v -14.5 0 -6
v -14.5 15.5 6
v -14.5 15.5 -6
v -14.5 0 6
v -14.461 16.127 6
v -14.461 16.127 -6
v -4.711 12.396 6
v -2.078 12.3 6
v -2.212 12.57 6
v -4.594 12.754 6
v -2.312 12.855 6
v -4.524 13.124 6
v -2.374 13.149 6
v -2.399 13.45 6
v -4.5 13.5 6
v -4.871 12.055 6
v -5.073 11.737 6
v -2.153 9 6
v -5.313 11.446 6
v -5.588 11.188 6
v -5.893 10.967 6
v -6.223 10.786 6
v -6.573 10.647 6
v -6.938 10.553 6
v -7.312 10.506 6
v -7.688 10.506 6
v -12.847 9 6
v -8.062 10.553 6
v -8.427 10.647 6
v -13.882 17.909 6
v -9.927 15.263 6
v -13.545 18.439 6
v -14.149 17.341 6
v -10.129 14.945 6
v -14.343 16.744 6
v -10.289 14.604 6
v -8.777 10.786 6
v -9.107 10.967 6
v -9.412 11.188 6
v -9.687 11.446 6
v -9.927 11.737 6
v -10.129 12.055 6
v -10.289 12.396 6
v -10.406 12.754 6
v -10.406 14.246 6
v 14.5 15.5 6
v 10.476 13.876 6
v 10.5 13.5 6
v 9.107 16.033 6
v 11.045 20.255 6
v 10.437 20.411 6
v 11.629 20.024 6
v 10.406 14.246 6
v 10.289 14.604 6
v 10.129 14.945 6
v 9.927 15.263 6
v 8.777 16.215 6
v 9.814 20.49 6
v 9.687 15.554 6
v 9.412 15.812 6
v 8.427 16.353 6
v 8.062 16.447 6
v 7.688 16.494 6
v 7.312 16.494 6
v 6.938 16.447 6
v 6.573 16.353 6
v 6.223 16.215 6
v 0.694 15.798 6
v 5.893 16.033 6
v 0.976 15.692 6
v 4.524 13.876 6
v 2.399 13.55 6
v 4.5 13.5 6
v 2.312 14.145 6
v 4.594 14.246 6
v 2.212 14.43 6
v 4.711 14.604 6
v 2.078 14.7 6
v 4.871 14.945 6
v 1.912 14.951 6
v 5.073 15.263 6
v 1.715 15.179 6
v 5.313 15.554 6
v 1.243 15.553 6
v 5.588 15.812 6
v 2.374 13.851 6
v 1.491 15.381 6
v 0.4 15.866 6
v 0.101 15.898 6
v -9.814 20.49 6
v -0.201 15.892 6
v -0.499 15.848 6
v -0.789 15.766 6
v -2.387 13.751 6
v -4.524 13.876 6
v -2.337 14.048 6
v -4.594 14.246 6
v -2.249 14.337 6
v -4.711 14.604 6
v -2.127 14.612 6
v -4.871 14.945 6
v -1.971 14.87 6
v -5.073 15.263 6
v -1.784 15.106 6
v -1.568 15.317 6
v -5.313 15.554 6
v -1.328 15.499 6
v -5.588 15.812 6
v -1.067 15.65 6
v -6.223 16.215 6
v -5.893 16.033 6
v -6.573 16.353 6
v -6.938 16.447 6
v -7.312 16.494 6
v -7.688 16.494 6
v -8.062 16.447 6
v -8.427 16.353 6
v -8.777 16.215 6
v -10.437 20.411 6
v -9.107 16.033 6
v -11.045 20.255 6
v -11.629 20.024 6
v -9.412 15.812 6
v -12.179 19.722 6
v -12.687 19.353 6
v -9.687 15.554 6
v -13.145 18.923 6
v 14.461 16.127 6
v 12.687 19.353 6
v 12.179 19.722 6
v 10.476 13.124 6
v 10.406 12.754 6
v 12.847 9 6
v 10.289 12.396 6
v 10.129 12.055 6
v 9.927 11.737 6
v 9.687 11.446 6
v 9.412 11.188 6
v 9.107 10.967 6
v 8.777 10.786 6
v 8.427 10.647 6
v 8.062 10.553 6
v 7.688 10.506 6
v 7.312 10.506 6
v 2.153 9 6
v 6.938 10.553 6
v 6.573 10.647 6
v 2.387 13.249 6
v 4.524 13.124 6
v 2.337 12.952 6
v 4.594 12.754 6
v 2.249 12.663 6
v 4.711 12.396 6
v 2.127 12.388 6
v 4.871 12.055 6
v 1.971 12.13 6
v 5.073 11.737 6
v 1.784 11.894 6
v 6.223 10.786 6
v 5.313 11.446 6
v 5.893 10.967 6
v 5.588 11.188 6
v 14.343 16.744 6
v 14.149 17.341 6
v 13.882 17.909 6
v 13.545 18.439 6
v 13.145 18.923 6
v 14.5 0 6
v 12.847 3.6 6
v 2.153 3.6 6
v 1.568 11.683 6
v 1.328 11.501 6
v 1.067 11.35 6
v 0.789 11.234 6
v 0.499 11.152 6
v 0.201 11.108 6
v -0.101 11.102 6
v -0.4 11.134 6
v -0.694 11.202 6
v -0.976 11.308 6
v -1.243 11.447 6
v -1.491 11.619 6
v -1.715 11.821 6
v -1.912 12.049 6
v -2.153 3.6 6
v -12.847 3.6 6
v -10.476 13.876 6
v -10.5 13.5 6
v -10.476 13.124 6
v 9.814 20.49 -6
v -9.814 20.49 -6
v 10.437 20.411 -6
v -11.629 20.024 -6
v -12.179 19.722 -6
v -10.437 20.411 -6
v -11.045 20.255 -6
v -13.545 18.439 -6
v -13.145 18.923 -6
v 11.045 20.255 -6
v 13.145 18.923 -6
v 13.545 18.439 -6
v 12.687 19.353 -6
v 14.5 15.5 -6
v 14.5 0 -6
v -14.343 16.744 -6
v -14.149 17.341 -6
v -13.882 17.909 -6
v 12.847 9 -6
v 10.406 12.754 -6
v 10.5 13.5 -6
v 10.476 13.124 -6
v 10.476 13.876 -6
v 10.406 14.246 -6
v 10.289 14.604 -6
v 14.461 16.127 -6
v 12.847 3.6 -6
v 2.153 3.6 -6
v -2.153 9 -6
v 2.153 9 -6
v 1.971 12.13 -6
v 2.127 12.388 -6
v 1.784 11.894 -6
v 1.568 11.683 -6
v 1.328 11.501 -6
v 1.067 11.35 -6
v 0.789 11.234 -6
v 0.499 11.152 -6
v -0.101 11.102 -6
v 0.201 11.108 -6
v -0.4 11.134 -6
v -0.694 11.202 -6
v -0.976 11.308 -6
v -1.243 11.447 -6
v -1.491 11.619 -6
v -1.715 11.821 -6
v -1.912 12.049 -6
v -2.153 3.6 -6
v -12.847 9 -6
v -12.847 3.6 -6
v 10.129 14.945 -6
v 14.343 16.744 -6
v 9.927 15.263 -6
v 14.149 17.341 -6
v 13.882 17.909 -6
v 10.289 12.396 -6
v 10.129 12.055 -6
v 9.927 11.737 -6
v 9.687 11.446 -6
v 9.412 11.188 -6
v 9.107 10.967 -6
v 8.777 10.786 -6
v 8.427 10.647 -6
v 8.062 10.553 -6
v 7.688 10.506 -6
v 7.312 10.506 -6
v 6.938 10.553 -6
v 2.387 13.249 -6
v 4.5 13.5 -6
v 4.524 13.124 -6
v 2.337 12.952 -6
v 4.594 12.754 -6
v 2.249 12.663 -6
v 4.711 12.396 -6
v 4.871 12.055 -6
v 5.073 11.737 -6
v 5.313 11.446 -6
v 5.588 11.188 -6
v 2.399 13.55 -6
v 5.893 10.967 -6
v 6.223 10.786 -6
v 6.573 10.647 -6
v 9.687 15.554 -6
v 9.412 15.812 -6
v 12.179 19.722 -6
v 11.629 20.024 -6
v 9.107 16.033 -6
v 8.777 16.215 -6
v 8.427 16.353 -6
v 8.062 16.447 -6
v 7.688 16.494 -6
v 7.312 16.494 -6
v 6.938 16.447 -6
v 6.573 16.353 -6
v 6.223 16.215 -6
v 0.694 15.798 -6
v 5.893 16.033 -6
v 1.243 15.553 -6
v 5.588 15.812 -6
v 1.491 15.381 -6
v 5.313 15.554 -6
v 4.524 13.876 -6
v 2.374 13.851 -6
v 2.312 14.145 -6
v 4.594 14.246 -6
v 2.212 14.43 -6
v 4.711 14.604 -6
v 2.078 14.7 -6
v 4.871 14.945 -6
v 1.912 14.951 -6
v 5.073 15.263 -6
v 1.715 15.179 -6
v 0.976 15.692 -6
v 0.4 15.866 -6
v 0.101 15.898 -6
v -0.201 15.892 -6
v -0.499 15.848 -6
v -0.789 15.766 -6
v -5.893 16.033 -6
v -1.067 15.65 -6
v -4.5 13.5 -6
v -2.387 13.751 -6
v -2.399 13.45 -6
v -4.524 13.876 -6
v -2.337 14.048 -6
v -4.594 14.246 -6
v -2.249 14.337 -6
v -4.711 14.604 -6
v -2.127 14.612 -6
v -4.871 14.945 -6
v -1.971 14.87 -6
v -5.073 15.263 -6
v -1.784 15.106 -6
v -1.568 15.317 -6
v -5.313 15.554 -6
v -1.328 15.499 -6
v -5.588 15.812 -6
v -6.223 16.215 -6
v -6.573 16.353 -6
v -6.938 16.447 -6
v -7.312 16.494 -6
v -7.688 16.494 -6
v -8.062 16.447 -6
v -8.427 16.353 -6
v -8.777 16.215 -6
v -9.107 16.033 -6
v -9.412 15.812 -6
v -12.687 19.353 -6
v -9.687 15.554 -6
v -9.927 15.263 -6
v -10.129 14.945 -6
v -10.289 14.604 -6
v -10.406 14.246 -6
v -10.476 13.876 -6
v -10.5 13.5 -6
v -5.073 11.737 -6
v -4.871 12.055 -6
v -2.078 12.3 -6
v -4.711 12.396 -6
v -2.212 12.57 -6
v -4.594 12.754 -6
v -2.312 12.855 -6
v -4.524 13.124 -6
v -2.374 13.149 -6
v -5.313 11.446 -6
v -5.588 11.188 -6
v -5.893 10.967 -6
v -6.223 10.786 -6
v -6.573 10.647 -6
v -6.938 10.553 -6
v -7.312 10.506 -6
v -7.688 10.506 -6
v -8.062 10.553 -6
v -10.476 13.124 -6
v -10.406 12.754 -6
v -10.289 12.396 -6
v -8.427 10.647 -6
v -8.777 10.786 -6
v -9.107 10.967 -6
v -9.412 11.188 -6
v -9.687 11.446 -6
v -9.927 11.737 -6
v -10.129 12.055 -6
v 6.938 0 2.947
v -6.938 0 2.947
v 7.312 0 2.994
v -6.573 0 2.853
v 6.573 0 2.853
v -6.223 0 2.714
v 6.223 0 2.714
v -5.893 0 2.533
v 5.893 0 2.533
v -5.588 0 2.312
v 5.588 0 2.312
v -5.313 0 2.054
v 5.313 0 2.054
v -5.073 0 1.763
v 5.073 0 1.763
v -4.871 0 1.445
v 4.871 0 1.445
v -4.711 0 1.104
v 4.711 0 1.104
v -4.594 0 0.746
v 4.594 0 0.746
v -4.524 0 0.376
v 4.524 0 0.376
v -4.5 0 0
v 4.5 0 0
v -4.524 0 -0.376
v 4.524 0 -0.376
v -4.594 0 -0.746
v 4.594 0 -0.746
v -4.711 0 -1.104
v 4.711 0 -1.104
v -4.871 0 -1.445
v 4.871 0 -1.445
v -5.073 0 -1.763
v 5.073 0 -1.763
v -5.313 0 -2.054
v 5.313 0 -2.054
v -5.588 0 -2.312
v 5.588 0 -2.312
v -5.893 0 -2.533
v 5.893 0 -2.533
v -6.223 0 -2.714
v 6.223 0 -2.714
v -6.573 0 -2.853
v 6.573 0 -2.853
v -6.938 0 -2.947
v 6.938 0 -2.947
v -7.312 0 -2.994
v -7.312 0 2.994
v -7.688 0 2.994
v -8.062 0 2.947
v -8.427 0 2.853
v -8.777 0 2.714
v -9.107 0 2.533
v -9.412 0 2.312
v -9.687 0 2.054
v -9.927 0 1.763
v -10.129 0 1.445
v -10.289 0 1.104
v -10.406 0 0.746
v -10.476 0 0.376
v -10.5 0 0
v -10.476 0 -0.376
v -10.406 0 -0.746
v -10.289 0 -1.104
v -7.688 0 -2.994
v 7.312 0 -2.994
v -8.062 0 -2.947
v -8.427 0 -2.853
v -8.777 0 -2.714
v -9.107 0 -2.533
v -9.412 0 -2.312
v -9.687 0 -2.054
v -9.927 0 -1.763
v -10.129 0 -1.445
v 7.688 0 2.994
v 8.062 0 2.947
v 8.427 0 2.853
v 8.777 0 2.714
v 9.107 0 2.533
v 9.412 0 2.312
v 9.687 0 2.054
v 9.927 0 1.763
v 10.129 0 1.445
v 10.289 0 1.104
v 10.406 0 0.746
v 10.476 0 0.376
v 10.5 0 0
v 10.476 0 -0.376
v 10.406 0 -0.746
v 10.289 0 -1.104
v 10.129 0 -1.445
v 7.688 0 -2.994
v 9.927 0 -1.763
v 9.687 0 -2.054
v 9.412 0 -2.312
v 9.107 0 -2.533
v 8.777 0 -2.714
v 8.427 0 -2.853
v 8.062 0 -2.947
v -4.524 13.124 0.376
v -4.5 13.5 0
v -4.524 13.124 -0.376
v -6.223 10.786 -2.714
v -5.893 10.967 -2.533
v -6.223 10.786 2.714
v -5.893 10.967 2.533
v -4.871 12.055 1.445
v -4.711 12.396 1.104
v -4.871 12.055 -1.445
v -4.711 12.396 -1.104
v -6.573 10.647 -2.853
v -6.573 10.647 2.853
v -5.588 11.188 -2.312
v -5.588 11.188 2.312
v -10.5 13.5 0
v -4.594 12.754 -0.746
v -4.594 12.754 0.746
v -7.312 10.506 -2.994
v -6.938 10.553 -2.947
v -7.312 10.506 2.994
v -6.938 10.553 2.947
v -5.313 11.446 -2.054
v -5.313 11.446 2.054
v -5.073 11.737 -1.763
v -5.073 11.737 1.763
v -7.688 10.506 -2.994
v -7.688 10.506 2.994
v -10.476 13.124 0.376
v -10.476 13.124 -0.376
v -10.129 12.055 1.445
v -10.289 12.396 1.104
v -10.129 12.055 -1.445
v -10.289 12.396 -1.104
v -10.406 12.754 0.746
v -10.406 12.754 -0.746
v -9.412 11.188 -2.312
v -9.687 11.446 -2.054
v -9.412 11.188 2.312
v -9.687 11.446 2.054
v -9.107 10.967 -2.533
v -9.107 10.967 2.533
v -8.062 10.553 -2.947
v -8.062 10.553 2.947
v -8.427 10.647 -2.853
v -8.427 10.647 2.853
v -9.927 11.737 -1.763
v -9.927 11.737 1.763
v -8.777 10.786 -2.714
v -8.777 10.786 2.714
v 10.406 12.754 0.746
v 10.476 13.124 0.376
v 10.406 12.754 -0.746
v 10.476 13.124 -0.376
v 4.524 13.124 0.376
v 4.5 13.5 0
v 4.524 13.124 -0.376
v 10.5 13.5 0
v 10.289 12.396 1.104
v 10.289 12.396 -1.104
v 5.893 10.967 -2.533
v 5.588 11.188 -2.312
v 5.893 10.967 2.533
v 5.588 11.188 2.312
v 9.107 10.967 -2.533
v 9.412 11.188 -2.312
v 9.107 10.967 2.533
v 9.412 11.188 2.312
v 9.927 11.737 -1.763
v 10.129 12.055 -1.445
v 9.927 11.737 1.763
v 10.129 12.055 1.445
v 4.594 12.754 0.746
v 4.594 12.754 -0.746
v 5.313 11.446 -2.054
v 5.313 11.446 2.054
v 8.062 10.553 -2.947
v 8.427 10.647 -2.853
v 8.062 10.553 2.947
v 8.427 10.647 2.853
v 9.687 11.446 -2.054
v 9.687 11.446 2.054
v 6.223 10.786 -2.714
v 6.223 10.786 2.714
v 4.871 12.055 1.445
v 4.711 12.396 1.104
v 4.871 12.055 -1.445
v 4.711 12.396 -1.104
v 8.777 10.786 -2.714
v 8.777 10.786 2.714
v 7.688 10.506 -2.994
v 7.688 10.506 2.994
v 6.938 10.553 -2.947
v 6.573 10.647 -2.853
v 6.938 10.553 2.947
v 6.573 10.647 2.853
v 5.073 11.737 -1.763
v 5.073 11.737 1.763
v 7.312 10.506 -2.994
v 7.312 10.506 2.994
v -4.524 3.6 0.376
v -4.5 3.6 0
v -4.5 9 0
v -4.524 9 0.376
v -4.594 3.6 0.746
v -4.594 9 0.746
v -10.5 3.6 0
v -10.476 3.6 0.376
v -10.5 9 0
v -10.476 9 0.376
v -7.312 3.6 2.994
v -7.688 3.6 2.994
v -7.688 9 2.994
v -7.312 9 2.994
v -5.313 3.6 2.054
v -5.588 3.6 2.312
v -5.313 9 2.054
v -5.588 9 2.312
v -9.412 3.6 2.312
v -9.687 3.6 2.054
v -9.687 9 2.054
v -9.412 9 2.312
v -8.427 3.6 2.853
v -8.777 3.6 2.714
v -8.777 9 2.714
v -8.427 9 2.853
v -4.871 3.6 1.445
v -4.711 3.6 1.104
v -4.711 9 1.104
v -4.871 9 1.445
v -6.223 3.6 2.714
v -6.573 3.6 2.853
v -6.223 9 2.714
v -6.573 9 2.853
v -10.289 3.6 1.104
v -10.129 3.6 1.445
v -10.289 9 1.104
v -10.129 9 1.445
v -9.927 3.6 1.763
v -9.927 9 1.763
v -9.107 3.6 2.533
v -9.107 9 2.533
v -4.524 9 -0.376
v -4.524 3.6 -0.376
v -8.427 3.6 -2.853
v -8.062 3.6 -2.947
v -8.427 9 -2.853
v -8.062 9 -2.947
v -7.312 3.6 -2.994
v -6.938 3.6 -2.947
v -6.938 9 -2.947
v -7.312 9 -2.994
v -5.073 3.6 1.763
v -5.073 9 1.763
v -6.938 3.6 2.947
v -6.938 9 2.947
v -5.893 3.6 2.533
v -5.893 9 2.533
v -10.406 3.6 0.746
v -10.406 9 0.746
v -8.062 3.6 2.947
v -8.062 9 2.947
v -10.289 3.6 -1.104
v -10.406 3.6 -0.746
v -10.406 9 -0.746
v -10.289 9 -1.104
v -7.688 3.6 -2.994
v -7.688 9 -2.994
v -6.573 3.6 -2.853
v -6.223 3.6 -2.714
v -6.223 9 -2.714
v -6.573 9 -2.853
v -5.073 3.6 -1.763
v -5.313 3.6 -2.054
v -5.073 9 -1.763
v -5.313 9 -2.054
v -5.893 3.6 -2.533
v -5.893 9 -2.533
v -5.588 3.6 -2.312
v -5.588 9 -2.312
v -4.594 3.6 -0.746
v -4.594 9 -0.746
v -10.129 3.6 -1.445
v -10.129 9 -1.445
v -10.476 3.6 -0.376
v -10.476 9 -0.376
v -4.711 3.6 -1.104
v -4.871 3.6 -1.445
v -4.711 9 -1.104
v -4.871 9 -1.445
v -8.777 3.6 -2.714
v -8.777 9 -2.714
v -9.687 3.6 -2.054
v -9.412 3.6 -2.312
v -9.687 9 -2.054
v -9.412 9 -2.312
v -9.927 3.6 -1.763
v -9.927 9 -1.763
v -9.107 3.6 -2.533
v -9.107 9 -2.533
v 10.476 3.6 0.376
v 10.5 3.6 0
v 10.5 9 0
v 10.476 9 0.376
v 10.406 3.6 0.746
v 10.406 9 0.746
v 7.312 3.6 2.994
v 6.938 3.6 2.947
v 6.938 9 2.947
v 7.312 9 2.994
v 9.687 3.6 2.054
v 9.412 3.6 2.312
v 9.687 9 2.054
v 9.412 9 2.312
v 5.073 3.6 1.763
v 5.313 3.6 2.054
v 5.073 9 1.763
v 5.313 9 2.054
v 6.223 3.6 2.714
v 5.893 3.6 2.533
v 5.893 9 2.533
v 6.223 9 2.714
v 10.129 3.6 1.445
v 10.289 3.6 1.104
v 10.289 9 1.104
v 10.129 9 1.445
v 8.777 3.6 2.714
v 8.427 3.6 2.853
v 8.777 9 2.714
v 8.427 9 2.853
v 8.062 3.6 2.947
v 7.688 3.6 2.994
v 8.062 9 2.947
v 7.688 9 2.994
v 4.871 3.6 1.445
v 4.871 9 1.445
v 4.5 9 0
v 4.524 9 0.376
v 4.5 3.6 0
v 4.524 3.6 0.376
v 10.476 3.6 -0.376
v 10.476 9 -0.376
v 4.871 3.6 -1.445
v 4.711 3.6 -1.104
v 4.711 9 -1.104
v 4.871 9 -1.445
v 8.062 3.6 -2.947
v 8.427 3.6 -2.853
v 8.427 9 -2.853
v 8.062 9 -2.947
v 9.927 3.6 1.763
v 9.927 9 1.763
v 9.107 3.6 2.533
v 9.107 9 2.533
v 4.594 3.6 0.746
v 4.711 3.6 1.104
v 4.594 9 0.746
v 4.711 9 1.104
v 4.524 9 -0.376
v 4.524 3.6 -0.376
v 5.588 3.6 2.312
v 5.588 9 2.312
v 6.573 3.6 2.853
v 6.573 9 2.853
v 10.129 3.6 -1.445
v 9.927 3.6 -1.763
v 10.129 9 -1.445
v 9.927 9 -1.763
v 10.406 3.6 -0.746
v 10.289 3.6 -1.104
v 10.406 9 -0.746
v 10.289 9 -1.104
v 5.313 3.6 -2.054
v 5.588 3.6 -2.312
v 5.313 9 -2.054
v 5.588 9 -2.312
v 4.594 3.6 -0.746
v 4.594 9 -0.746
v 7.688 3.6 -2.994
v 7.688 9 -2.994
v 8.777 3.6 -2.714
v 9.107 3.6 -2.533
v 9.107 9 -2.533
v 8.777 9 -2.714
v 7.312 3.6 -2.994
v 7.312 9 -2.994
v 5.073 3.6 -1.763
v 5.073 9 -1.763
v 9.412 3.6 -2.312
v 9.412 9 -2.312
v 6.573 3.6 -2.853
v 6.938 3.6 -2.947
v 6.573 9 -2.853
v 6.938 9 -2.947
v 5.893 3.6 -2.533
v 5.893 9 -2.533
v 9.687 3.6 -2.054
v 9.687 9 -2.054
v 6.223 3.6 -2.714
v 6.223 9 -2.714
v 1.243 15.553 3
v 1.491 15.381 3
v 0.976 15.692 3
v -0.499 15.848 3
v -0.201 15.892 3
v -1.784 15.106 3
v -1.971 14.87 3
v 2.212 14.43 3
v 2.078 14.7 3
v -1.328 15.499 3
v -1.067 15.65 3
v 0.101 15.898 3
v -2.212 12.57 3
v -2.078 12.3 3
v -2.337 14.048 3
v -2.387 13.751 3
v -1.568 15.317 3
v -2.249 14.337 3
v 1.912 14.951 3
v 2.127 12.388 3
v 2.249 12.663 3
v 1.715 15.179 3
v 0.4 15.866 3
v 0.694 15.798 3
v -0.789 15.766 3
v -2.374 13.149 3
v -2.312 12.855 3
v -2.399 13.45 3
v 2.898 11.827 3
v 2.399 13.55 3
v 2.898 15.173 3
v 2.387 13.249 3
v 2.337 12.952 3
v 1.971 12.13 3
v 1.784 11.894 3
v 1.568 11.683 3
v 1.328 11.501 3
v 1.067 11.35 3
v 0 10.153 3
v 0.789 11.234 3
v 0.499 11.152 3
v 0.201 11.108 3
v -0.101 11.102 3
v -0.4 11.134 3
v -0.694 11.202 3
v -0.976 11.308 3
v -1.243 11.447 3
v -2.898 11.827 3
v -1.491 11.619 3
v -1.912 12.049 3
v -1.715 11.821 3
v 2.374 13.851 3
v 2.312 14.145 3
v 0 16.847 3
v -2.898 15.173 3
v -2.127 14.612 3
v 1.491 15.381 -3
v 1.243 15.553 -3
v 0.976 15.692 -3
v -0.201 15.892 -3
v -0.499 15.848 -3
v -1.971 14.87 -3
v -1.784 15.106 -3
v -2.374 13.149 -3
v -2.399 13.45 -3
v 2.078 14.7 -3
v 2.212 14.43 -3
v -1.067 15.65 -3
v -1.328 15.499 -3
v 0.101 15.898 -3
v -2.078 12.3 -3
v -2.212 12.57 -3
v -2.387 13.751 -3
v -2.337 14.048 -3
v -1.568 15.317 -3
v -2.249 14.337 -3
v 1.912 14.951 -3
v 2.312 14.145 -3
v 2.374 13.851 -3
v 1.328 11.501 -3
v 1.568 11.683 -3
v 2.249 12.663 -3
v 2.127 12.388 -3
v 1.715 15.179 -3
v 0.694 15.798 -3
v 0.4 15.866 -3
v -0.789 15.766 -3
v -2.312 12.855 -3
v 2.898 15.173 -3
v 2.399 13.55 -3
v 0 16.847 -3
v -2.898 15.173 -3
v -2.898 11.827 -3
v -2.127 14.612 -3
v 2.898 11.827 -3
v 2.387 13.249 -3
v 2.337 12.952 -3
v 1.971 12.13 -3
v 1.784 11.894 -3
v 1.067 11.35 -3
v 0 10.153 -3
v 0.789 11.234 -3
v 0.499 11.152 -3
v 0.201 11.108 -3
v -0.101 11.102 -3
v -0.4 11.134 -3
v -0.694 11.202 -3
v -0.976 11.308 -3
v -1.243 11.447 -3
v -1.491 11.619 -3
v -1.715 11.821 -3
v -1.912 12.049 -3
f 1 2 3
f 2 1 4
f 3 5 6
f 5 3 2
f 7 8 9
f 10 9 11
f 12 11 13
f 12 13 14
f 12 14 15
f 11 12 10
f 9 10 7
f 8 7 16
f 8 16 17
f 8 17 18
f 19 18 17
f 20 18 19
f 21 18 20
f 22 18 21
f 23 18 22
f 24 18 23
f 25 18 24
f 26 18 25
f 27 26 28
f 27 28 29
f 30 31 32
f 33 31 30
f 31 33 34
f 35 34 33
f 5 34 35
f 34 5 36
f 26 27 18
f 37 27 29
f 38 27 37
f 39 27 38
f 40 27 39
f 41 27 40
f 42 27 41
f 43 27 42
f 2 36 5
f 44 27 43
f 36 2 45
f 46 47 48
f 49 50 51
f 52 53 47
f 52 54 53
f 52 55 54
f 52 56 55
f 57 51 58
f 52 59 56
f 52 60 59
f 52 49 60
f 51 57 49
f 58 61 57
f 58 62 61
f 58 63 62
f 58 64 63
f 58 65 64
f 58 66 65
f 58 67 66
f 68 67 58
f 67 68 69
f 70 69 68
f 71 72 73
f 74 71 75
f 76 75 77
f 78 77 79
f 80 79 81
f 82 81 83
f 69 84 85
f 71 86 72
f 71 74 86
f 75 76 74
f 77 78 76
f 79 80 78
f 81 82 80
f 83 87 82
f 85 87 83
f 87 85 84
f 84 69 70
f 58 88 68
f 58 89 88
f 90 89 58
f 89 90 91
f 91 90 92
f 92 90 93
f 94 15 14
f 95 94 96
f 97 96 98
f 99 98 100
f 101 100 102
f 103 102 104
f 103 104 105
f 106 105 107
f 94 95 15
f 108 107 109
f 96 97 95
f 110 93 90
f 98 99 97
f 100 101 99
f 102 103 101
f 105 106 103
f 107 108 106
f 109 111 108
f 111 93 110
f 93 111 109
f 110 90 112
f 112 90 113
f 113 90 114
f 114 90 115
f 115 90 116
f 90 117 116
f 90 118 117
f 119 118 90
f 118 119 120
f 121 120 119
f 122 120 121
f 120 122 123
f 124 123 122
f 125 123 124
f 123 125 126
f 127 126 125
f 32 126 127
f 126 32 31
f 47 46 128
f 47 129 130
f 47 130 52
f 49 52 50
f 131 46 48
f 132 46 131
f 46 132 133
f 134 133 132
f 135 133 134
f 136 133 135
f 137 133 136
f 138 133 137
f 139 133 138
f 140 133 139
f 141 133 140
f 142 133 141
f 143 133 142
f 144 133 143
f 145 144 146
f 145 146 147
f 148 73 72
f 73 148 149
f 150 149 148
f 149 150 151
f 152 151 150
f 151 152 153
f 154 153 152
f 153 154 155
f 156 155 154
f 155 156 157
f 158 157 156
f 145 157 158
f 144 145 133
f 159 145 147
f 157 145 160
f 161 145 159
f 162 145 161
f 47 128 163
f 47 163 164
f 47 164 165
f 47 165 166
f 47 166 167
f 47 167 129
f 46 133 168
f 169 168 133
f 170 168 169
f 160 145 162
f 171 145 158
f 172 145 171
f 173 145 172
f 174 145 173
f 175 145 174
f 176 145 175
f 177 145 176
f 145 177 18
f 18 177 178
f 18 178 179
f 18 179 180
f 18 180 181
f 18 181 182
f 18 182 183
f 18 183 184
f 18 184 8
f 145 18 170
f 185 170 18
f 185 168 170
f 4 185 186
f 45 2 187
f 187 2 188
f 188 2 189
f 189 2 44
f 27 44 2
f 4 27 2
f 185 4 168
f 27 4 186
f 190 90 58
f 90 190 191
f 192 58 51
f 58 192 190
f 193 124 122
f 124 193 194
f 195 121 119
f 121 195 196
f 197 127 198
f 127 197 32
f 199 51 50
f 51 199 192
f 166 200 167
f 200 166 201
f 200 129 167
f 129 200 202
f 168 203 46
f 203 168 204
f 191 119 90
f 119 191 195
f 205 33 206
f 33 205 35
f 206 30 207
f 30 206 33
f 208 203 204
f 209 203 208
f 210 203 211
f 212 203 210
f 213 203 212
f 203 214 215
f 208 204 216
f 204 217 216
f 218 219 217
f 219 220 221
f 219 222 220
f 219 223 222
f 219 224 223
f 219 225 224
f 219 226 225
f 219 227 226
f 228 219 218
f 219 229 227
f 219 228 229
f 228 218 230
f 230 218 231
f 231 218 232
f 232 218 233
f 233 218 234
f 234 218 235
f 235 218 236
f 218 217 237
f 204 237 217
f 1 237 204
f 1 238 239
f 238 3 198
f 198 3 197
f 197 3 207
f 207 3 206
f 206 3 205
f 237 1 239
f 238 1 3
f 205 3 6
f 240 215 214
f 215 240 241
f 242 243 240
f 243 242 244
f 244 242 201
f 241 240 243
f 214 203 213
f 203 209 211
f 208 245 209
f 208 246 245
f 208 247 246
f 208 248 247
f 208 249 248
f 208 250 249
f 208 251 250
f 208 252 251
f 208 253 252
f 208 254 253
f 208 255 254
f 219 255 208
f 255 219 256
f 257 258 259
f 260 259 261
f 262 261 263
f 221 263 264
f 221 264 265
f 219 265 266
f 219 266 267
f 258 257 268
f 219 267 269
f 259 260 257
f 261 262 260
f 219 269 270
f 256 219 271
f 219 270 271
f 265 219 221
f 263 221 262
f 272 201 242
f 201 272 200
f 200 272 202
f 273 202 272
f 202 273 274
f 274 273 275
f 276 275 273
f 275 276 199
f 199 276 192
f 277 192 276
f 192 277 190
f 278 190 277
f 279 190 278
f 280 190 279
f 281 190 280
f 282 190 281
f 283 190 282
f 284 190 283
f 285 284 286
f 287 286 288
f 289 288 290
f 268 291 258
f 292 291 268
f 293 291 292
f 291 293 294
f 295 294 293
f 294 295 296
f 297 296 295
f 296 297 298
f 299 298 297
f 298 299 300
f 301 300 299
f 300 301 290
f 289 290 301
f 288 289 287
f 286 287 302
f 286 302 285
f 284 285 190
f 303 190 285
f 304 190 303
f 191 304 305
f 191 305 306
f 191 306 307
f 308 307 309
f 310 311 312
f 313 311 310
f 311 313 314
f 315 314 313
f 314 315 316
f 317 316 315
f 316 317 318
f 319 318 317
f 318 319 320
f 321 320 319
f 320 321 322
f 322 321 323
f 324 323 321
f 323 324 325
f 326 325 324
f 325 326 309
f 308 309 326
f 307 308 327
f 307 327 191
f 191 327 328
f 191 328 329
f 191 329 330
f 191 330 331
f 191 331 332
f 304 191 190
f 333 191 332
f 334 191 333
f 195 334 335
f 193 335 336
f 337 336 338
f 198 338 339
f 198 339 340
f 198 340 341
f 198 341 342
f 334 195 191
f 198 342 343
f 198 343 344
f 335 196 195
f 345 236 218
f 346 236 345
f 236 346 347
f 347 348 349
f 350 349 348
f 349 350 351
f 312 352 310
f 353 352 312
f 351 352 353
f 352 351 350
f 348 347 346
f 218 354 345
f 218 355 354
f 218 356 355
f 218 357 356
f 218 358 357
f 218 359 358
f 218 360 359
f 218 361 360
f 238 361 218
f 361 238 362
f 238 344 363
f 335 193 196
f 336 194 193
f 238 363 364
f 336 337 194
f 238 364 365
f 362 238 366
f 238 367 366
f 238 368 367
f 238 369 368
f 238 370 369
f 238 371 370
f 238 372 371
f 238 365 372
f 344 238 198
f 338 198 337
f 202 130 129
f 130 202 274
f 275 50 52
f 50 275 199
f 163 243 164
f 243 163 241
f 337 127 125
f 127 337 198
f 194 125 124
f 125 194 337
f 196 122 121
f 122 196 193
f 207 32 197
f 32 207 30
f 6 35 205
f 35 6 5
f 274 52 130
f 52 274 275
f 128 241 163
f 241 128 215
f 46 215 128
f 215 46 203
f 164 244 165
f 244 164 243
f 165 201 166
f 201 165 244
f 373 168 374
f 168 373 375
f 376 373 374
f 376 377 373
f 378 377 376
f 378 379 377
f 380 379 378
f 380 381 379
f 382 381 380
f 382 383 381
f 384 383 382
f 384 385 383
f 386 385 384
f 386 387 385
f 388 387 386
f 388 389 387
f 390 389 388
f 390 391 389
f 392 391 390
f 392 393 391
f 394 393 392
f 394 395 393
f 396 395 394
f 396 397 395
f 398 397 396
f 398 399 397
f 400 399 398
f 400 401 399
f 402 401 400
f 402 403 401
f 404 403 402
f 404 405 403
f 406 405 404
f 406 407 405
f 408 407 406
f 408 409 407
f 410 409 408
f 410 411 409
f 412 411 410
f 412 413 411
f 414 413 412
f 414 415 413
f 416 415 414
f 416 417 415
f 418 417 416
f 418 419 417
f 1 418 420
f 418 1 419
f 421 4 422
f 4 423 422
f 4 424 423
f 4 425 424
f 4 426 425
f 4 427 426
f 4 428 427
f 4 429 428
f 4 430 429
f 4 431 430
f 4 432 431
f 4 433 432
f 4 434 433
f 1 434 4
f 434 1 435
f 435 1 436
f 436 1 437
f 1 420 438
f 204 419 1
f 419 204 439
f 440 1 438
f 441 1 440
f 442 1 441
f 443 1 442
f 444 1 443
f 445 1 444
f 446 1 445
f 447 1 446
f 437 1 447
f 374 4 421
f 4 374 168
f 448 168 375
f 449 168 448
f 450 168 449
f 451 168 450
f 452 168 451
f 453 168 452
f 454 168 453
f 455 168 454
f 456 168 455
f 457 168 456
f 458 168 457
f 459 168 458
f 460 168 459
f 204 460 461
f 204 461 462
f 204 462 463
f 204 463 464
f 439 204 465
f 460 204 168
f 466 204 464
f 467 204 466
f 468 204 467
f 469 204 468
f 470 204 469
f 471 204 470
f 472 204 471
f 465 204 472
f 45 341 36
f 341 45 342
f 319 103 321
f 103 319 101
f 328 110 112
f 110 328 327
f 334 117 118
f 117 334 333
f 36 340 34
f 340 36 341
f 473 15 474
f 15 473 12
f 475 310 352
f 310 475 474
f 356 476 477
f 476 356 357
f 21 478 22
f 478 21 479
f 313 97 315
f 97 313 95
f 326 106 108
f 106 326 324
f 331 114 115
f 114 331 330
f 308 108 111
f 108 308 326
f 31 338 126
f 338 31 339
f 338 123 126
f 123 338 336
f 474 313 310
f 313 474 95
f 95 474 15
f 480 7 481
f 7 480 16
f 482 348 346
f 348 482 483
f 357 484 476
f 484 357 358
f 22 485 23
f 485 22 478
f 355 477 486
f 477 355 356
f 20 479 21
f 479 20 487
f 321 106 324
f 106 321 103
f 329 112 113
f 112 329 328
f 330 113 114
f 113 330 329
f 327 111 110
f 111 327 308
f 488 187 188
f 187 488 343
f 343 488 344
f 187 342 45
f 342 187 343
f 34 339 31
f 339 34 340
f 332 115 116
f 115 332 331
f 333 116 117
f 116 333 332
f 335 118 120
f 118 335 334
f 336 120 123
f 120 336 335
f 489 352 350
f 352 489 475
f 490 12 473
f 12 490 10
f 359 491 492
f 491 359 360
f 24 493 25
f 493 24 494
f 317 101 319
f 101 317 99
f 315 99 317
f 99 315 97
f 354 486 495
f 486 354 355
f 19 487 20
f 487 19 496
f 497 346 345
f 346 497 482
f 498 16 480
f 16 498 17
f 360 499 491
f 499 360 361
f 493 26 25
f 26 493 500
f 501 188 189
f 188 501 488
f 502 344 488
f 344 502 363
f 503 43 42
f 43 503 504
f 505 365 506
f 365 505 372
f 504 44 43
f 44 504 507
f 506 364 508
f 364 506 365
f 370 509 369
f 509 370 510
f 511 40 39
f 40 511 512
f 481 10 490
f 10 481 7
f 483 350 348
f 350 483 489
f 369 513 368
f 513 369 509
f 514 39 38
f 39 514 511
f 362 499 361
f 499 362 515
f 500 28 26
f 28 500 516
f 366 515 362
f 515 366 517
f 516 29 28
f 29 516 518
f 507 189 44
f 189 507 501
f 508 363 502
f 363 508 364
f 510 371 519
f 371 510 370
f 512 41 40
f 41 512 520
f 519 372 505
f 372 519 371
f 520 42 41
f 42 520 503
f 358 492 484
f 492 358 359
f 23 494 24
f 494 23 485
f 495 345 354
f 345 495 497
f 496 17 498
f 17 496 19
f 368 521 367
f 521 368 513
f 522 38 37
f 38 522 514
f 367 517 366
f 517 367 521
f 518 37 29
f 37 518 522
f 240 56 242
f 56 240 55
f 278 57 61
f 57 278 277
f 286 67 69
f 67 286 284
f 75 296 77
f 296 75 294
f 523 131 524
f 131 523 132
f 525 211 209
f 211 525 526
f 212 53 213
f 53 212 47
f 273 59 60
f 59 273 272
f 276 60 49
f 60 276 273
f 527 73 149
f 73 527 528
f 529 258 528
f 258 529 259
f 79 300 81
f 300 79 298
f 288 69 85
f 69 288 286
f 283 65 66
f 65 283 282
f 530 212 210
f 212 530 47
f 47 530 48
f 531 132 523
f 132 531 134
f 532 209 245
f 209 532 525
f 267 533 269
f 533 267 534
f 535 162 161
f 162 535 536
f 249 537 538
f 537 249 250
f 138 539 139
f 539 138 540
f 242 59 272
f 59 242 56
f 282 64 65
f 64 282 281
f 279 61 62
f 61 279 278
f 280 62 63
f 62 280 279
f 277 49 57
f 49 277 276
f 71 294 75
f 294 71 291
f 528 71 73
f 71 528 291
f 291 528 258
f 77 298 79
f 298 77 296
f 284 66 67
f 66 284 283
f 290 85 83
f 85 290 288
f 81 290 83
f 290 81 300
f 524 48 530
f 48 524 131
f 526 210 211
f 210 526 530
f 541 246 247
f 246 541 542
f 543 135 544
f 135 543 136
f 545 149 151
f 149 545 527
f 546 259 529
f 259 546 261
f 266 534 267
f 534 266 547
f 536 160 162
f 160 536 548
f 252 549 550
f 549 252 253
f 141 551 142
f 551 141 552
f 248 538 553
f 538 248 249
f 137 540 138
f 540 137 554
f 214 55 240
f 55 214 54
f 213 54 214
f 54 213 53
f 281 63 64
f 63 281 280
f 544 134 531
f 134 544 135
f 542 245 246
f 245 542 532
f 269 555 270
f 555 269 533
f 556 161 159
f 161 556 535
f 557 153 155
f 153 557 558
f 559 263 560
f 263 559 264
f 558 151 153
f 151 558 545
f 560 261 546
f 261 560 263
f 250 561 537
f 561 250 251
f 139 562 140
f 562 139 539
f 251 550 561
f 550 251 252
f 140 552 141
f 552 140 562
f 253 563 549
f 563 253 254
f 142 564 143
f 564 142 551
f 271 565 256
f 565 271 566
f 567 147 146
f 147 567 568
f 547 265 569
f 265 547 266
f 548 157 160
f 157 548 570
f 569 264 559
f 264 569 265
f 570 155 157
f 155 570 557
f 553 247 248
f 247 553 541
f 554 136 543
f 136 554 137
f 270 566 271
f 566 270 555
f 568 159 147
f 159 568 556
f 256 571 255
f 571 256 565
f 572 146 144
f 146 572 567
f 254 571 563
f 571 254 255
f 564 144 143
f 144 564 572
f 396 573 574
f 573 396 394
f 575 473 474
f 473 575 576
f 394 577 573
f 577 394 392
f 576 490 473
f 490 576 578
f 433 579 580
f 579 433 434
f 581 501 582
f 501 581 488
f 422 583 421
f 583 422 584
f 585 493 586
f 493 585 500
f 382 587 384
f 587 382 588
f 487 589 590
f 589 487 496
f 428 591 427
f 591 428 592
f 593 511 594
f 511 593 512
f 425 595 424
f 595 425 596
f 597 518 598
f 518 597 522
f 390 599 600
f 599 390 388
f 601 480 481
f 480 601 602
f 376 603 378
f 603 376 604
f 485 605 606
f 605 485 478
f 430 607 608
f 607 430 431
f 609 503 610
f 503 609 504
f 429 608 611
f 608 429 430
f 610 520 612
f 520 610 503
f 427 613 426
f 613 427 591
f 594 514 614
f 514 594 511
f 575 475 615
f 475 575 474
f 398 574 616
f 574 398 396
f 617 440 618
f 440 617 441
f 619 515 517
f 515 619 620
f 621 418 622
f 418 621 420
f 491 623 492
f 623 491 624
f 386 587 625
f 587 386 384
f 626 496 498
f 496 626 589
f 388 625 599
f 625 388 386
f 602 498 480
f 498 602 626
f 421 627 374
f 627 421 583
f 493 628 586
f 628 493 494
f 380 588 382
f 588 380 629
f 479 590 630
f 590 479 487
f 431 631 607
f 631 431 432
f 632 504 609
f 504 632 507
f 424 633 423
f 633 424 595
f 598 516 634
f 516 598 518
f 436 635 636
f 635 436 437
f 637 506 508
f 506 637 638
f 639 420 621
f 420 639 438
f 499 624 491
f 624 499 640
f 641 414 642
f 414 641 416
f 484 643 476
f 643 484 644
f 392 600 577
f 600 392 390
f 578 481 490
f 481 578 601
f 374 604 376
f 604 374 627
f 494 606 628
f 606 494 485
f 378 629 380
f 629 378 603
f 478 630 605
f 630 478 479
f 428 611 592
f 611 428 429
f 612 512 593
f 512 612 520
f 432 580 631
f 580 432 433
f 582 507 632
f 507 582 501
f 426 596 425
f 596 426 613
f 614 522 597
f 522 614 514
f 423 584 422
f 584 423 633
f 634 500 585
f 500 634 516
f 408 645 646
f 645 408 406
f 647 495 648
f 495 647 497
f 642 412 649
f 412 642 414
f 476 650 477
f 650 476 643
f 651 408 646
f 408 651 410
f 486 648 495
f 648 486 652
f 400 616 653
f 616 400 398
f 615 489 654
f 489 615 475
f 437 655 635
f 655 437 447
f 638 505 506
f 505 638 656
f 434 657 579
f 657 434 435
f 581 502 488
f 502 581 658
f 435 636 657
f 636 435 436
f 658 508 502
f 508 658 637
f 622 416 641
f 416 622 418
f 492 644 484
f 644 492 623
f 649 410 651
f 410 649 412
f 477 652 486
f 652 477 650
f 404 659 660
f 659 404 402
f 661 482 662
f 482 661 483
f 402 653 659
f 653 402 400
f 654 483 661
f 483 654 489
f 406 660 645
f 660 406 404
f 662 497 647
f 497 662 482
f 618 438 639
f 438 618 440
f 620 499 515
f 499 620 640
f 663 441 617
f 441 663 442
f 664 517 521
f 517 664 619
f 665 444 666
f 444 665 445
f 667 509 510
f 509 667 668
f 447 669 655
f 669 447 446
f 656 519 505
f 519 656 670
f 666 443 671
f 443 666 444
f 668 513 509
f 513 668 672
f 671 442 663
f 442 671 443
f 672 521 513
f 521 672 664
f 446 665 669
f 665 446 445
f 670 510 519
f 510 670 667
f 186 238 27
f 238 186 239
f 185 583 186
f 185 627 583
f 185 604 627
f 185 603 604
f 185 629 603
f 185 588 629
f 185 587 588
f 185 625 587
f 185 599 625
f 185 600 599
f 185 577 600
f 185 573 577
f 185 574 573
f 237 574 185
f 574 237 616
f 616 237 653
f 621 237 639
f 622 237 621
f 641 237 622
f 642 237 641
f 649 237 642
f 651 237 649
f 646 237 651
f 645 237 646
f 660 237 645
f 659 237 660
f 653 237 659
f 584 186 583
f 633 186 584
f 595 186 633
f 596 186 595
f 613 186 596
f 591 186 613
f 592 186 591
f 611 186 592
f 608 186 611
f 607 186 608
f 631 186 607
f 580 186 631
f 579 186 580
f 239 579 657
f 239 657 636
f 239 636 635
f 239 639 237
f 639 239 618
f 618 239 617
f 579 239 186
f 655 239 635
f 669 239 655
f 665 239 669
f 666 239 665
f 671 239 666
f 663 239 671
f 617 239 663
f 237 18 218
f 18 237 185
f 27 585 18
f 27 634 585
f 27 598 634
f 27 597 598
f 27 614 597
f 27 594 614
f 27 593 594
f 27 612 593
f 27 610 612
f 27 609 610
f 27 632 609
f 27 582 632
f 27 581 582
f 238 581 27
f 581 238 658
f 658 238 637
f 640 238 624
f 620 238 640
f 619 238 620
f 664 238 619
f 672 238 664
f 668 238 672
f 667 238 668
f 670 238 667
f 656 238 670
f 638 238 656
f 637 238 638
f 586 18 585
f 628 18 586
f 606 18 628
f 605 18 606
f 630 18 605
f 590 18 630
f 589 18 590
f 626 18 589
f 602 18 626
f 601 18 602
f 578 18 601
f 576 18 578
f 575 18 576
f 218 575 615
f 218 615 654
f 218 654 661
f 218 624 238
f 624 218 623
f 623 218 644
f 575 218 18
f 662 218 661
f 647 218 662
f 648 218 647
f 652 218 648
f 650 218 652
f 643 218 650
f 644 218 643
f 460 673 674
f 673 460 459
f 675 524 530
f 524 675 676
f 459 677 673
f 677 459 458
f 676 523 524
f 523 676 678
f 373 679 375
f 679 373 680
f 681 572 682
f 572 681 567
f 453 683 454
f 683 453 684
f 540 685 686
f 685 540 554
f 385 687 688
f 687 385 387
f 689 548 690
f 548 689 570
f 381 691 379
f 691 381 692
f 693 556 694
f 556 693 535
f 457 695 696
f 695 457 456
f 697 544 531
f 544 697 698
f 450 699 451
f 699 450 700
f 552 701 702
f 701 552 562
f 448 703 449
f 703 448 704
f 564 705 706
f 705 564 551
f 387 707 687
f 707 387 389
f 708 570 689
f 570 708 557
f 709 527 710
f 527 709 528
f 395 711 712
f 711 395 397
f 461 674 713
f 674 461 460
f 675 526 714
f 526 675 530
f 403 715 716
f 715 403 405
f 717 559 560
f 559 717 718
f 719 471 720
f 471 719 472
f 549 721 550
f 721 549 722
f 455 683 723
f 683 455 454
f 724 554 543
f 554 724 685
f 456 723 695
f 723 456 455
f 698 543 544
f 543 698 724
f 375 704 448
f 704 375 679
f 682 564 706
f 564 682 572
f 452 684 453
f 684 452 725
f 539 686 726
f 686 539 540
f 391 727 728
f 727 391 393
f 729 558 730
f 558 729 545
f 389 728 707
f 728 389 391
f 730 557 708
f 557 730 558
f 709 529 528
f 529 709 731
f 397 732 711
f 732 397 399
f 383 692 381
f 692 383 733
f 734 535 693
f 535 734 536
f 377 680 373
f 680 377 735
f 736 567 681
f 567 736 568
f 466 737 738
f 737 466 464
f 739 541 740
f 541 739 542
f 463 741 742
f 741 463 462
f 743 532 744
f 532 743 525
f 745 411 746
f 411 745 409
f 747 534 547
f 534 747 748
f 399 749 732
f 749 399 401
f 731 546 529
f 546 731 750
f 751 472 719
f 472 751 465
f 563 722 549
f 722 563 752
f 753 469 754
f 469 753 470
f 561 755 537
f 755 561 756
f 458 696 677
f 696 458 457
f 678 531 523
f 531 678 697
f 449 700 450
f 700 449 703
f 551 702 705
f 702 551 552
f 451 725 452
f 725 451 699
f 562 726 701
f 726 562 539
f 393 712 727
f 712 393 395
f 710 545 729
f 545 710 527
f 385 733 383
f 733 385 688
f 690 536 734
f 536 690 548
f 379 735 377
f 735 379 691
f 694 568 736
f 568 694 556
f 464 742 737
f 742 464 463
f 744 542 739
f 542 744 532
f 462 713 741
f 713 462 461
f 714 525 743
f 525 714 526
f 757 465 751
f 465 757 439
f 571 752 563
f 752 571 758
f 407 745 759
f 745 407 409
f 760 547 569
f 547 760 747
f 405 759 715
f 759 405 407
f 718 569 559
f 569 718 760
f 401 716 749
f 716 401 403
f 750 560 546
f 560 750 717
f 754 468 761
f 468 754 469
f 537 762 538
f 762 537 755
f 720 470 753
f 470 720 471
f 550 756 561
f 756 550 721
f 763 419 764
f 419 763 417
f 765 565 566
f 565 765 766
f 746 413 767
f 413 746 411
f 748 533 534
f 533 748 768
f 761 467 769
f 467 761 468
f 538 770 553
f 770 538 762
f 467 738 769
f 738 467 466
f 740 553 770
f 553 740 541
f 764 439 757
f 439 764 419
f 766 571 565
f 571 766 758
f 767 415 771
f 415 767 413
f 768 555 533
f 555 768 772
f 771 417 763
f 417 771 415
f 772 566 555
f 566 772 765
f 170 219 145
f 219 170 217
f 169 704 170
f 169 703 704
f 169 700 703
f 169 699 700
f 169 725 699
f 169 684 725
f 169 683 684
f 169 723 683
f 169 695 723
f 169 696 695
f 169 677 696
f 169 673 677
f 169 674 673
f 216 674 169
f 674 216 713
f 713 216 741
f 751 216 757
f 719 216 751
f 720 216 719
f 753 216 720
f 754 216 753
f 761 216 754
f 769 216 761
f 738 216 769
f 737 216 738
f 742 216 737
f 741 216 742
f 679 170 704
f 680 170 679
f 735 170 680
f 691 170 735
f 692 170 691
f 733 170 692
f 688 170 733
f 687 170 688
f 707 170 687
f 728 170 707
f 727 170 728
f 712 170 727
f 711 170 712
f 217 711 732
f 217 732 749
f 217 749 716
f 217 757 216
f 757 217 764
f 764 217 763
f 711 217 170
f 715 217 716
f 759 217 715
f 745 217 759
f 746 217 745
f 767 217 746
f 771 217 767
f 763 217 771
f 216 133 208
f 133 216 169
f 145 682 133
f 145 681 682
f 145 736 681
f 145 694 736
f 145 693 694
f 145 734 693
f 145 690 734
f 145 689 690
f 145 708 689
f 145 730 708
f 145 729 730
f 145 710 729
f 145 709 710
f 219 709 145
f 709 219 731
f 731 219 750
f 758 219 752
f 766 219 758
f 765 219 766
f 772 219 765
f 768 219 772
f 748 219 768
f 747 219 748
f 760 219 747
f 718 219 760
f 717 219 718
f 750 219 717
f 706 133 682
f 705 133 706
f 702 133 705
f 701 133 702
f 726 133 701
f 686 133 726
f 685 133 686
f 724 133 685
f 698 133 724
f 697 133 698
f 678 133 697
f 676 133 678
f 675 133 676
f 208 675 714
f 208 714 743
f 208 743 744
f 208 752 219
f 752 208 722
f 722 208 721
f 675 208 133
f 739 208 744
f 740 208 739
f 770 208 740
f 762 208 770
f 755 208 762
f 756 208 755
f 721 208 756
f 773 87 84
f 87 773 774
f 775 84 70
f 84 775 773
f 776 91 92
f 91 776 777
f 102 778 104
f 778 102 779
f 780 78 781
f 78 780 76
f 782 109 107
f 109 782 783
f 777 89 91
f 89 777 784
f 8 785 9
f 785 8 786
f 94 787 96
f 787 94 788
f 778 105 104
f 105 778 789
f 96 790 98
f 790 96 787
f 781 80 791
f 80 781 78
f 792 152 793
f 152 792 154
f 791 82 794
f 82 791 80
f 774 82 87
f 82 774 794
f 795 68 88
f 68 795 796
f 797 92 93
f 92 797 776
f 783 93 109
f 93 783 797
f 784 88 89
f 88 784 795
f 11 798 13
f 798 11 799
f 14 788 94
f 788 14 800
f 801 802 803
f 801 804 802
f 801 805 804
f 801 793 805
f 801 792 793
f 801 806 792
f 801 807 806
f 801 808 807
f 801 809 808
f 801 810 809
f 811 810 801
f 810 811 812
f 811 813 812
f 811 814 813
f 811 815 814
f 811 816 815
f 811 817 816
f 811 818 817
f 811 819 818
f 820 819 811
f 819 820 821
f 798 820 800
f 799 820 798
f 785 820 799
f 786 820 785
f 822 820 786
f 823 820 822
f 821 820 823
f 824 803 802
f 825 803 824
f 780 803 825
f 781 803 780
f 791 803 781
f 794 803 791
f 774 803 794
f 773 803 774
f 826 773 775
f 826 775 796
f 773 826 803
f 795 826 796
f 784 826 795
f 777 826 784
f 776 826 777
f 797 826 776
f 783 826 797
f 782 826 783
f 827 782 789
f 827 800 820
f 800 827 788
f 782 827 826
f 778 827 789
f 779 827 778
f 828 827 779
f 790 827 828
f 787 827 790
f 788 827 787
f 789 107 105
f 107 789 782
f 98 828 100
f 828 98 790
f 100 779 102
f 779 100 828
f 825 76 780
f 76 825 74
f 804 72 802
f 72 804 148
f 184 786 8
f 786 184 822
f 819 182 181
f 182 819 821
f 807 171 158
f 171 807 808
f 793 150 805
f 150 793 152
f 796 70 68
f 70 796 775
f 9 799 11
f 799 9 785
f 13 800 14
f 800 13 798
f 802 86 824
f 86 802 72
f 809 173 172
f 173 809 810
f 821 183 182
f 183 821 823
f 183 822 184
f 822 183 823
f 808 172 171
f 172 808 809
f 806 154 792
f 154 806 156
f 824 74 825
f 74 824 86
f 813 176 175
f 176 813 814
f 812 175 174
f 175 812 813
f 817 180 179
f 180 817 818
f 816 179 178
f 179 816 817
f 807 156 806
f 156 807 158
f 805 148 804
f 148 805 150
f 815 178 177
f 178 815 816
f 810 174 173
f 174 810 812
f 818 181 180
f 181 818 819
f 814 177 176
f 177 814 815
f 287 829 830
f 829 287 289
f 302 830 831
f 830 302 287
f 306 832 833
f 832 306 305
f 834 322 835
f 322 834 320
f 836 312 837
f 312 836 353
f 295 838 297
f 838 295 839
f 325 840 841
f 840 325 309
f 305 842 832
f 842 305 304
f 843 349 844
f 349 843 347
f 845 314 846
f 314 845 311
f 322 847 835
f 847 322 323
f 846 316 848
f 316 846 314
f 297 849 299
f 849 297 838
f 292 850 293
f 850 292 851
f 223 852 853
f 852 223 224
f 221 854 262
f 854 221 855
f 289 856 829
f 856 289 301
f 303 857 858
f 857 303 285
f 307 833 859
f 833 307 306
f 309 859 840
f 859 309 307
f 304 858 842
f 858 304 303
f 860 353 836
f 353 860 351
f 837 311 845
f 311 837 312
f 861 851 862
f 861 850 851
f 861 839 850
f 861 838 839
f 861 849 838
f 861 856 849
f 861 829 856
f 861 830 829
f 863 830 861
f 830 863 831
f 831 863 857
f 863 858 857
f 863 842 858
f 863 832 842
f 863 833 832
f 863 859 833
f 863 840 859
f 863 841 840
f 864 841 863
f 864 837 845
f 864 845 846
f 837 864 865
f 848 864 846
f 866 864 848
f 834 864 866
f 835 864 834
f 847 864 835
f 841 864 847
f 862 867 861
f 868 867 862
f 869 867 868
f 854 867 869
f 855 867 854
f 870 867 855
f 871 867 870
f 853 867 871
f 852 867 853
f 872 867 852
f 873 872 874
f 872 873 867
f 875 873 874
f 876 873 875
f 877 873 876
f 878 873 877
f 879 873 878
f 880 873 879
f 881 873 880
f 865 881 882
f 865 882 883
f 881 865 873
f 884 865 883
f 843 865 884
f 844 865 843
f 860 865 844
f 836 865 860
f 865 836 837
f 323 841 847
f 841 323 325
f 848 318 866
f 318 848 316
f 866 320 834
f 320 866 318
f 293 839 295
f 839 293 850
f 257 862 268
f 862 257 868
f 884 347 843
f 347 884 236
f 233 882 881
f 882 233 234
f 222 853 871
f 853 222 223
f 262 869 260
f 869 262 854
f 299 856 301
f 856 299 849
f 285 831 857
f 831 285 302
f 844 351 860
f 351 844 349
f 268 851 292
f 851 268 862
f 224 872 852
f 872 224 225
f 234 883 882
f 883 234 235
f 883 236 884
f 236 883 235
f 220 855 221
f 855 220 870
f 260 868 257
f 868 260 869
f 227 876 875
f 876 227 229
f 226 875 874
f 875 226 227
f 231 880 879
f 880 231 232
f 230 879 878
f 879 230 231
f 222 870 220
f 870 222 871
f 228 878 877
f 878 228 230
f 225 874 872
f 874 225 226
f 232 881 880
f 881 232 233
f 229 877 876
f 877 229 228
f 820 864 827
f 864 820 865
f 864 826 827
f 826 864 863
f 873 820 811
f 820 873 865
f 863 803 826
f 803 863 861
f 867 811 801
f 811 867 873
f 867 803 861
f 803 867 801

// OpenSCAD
$fn = 50;


difference() {
	union() {
		translate(v = [0, 13.5000000000, -6.0000000000]) {
			rotate(a = [0, 0, 0]) {
				hull() {
					translate(v = [-9.5000000000, 2.0000000000, 0]) {
						rotate(a = [0, 0, 0]) {
							translate(v = [0, 0, 0]) {
								rotate(a = [0, 0, 0]) {
									cylinder(h = 12, r = 5);
								}
							}
						}
					}
					translate(v = [9.5000000000, 2.0000000000, 0]) {
						rotate(a = [0, 0, 0]) {
							translate(v = [0, 0, 0]) {
								rotate(a = [0, 0, 0]) {
									cylinder(h = 12, r = 5);
								}
							}
						}
					}
					translate(v = [-9.5000000000, -2.0000000000, 0]) {
						rotate(a = [0, 0, 0]) {
							translate(v = [0, 0, 0]) {
								rotate(a = [0, 0, 0]) {
									cylinder(h = 12, r = 5);
								}
							}
						}
					}
					translate(v = [9.5000000000, -2.0000000000, 0]) {
						rotate(a = [0, 0, 0]) {
							translate(v = [0, 0, 0]) {
								rotate(a = [0, 0, 0]) {
									cylinder(h = 12, r = 5);
								}
							}
						}
					}
				}
			}
		}
		translate(v = [-14.5000000000, 0, -6.0000000000]) {
			rotate(a = [0, 0, 0]) {
				cube(size = [29, 13.5000000000, 12]);
			}
		}
	}
	union() {
		translate(v = [-7.5000000000, 13.5000000000, -6.0000000000]) {
			rotate(a = [0, 0, 0]) {
				translate(v = [0, 0, -50]) {
					rotate(a = [0, 0, 0]) {
						cylinder(h = 100, r = 3.0000000000);
					}
				}
			}
		}
		translate(v = [7.5000000000, 13.5000000000, -6.0000000000]) {
			rotate(a = [0, 0, 0]) {
				translate(v = [0, 0, -50]) {
					rotate(a = [0, 0, 0]) {
						cylinder(h = 100, r = 3.0000000000);
					}
				}
			}
		}
		translate(v = [-7.5000000000, 13.5000000000, 0]) {
			rotate(a = [90, 0, 0]) {
				cylinder(h = 13.5000000000, r = 3.0000000000);
			}
		}
		translate(v = [-12.8466204506, 9, -25]) {
			rotate(a = [90, 0, 0]) {
				cube(size = [10.6932409012, 100, 5.4000000000]);
			}
		}
		translate(v = [7.5000000000, 13.5000000000, 0]) {
			rotate(a = [90, 0, 0]) {
				cylinder(h = 13.5000000000, r = 3.0000000000);
			}
		}
		translate(v = [2.1533795494, 9, -25]) {
			rotate(a = [90, 0, 0]) {
				cube(size = [10.6932409012, 100, 5.4000000000]);
			}
		}
		translate(v = [0.0000000000, 13.5000000000, 3.0000000000]) {
			rotate(a = [0, 0, 30.0000000000]) {
				cylinder(h = 3, r1 = 2.4000000000, r2 = 2.4000000000);
			}
		}
		translate(v = [0.0000000000, 13.5000000000, -6.0000000000]) {
			rotate(a = [0, 0, 30.0000000000]) {
				cylinder(h = 3, r1 = 2.4000000000, r2 = 2.4000000000);
			}
		}
		translate(v = [0.0000000000, 13.5000000000, -3.0000000000]) {
			rotate(a = [0, 0, 30.0000000000]) {
				cylinder(h = 6, r = 1.5000000000);
			}
		}
		translate(v = [0.0000000000, 13.5000000000, -3.0000000000]) {
			rotate(a = [0, 0, 30.0000000000]) {
				translate(v = [0, 0, 0]) {
					rotate(a = [0, 0, 0]) {
						linear_extrude(height = 6) {
							polygon(points = [[3.3466000000, 0.0000000000], [1.6733000000, 2.8982406163], [-1.6733000000, 2.8982406163], [-3.3466000000, 0.0000000000], [-1.6733000000, -2.8982406163], [1.6733000000, -2.8982406163]]);
						}
					}
				}
			}
		}
		translate(v = [0.0000000000, 13.5000000000, -6.0000000000]) {
			rotate(a = [0, 0, 30.0000000000]) {
				cylinder(h = 12, r = 1.5000000000);
			}
		}
	}
}
